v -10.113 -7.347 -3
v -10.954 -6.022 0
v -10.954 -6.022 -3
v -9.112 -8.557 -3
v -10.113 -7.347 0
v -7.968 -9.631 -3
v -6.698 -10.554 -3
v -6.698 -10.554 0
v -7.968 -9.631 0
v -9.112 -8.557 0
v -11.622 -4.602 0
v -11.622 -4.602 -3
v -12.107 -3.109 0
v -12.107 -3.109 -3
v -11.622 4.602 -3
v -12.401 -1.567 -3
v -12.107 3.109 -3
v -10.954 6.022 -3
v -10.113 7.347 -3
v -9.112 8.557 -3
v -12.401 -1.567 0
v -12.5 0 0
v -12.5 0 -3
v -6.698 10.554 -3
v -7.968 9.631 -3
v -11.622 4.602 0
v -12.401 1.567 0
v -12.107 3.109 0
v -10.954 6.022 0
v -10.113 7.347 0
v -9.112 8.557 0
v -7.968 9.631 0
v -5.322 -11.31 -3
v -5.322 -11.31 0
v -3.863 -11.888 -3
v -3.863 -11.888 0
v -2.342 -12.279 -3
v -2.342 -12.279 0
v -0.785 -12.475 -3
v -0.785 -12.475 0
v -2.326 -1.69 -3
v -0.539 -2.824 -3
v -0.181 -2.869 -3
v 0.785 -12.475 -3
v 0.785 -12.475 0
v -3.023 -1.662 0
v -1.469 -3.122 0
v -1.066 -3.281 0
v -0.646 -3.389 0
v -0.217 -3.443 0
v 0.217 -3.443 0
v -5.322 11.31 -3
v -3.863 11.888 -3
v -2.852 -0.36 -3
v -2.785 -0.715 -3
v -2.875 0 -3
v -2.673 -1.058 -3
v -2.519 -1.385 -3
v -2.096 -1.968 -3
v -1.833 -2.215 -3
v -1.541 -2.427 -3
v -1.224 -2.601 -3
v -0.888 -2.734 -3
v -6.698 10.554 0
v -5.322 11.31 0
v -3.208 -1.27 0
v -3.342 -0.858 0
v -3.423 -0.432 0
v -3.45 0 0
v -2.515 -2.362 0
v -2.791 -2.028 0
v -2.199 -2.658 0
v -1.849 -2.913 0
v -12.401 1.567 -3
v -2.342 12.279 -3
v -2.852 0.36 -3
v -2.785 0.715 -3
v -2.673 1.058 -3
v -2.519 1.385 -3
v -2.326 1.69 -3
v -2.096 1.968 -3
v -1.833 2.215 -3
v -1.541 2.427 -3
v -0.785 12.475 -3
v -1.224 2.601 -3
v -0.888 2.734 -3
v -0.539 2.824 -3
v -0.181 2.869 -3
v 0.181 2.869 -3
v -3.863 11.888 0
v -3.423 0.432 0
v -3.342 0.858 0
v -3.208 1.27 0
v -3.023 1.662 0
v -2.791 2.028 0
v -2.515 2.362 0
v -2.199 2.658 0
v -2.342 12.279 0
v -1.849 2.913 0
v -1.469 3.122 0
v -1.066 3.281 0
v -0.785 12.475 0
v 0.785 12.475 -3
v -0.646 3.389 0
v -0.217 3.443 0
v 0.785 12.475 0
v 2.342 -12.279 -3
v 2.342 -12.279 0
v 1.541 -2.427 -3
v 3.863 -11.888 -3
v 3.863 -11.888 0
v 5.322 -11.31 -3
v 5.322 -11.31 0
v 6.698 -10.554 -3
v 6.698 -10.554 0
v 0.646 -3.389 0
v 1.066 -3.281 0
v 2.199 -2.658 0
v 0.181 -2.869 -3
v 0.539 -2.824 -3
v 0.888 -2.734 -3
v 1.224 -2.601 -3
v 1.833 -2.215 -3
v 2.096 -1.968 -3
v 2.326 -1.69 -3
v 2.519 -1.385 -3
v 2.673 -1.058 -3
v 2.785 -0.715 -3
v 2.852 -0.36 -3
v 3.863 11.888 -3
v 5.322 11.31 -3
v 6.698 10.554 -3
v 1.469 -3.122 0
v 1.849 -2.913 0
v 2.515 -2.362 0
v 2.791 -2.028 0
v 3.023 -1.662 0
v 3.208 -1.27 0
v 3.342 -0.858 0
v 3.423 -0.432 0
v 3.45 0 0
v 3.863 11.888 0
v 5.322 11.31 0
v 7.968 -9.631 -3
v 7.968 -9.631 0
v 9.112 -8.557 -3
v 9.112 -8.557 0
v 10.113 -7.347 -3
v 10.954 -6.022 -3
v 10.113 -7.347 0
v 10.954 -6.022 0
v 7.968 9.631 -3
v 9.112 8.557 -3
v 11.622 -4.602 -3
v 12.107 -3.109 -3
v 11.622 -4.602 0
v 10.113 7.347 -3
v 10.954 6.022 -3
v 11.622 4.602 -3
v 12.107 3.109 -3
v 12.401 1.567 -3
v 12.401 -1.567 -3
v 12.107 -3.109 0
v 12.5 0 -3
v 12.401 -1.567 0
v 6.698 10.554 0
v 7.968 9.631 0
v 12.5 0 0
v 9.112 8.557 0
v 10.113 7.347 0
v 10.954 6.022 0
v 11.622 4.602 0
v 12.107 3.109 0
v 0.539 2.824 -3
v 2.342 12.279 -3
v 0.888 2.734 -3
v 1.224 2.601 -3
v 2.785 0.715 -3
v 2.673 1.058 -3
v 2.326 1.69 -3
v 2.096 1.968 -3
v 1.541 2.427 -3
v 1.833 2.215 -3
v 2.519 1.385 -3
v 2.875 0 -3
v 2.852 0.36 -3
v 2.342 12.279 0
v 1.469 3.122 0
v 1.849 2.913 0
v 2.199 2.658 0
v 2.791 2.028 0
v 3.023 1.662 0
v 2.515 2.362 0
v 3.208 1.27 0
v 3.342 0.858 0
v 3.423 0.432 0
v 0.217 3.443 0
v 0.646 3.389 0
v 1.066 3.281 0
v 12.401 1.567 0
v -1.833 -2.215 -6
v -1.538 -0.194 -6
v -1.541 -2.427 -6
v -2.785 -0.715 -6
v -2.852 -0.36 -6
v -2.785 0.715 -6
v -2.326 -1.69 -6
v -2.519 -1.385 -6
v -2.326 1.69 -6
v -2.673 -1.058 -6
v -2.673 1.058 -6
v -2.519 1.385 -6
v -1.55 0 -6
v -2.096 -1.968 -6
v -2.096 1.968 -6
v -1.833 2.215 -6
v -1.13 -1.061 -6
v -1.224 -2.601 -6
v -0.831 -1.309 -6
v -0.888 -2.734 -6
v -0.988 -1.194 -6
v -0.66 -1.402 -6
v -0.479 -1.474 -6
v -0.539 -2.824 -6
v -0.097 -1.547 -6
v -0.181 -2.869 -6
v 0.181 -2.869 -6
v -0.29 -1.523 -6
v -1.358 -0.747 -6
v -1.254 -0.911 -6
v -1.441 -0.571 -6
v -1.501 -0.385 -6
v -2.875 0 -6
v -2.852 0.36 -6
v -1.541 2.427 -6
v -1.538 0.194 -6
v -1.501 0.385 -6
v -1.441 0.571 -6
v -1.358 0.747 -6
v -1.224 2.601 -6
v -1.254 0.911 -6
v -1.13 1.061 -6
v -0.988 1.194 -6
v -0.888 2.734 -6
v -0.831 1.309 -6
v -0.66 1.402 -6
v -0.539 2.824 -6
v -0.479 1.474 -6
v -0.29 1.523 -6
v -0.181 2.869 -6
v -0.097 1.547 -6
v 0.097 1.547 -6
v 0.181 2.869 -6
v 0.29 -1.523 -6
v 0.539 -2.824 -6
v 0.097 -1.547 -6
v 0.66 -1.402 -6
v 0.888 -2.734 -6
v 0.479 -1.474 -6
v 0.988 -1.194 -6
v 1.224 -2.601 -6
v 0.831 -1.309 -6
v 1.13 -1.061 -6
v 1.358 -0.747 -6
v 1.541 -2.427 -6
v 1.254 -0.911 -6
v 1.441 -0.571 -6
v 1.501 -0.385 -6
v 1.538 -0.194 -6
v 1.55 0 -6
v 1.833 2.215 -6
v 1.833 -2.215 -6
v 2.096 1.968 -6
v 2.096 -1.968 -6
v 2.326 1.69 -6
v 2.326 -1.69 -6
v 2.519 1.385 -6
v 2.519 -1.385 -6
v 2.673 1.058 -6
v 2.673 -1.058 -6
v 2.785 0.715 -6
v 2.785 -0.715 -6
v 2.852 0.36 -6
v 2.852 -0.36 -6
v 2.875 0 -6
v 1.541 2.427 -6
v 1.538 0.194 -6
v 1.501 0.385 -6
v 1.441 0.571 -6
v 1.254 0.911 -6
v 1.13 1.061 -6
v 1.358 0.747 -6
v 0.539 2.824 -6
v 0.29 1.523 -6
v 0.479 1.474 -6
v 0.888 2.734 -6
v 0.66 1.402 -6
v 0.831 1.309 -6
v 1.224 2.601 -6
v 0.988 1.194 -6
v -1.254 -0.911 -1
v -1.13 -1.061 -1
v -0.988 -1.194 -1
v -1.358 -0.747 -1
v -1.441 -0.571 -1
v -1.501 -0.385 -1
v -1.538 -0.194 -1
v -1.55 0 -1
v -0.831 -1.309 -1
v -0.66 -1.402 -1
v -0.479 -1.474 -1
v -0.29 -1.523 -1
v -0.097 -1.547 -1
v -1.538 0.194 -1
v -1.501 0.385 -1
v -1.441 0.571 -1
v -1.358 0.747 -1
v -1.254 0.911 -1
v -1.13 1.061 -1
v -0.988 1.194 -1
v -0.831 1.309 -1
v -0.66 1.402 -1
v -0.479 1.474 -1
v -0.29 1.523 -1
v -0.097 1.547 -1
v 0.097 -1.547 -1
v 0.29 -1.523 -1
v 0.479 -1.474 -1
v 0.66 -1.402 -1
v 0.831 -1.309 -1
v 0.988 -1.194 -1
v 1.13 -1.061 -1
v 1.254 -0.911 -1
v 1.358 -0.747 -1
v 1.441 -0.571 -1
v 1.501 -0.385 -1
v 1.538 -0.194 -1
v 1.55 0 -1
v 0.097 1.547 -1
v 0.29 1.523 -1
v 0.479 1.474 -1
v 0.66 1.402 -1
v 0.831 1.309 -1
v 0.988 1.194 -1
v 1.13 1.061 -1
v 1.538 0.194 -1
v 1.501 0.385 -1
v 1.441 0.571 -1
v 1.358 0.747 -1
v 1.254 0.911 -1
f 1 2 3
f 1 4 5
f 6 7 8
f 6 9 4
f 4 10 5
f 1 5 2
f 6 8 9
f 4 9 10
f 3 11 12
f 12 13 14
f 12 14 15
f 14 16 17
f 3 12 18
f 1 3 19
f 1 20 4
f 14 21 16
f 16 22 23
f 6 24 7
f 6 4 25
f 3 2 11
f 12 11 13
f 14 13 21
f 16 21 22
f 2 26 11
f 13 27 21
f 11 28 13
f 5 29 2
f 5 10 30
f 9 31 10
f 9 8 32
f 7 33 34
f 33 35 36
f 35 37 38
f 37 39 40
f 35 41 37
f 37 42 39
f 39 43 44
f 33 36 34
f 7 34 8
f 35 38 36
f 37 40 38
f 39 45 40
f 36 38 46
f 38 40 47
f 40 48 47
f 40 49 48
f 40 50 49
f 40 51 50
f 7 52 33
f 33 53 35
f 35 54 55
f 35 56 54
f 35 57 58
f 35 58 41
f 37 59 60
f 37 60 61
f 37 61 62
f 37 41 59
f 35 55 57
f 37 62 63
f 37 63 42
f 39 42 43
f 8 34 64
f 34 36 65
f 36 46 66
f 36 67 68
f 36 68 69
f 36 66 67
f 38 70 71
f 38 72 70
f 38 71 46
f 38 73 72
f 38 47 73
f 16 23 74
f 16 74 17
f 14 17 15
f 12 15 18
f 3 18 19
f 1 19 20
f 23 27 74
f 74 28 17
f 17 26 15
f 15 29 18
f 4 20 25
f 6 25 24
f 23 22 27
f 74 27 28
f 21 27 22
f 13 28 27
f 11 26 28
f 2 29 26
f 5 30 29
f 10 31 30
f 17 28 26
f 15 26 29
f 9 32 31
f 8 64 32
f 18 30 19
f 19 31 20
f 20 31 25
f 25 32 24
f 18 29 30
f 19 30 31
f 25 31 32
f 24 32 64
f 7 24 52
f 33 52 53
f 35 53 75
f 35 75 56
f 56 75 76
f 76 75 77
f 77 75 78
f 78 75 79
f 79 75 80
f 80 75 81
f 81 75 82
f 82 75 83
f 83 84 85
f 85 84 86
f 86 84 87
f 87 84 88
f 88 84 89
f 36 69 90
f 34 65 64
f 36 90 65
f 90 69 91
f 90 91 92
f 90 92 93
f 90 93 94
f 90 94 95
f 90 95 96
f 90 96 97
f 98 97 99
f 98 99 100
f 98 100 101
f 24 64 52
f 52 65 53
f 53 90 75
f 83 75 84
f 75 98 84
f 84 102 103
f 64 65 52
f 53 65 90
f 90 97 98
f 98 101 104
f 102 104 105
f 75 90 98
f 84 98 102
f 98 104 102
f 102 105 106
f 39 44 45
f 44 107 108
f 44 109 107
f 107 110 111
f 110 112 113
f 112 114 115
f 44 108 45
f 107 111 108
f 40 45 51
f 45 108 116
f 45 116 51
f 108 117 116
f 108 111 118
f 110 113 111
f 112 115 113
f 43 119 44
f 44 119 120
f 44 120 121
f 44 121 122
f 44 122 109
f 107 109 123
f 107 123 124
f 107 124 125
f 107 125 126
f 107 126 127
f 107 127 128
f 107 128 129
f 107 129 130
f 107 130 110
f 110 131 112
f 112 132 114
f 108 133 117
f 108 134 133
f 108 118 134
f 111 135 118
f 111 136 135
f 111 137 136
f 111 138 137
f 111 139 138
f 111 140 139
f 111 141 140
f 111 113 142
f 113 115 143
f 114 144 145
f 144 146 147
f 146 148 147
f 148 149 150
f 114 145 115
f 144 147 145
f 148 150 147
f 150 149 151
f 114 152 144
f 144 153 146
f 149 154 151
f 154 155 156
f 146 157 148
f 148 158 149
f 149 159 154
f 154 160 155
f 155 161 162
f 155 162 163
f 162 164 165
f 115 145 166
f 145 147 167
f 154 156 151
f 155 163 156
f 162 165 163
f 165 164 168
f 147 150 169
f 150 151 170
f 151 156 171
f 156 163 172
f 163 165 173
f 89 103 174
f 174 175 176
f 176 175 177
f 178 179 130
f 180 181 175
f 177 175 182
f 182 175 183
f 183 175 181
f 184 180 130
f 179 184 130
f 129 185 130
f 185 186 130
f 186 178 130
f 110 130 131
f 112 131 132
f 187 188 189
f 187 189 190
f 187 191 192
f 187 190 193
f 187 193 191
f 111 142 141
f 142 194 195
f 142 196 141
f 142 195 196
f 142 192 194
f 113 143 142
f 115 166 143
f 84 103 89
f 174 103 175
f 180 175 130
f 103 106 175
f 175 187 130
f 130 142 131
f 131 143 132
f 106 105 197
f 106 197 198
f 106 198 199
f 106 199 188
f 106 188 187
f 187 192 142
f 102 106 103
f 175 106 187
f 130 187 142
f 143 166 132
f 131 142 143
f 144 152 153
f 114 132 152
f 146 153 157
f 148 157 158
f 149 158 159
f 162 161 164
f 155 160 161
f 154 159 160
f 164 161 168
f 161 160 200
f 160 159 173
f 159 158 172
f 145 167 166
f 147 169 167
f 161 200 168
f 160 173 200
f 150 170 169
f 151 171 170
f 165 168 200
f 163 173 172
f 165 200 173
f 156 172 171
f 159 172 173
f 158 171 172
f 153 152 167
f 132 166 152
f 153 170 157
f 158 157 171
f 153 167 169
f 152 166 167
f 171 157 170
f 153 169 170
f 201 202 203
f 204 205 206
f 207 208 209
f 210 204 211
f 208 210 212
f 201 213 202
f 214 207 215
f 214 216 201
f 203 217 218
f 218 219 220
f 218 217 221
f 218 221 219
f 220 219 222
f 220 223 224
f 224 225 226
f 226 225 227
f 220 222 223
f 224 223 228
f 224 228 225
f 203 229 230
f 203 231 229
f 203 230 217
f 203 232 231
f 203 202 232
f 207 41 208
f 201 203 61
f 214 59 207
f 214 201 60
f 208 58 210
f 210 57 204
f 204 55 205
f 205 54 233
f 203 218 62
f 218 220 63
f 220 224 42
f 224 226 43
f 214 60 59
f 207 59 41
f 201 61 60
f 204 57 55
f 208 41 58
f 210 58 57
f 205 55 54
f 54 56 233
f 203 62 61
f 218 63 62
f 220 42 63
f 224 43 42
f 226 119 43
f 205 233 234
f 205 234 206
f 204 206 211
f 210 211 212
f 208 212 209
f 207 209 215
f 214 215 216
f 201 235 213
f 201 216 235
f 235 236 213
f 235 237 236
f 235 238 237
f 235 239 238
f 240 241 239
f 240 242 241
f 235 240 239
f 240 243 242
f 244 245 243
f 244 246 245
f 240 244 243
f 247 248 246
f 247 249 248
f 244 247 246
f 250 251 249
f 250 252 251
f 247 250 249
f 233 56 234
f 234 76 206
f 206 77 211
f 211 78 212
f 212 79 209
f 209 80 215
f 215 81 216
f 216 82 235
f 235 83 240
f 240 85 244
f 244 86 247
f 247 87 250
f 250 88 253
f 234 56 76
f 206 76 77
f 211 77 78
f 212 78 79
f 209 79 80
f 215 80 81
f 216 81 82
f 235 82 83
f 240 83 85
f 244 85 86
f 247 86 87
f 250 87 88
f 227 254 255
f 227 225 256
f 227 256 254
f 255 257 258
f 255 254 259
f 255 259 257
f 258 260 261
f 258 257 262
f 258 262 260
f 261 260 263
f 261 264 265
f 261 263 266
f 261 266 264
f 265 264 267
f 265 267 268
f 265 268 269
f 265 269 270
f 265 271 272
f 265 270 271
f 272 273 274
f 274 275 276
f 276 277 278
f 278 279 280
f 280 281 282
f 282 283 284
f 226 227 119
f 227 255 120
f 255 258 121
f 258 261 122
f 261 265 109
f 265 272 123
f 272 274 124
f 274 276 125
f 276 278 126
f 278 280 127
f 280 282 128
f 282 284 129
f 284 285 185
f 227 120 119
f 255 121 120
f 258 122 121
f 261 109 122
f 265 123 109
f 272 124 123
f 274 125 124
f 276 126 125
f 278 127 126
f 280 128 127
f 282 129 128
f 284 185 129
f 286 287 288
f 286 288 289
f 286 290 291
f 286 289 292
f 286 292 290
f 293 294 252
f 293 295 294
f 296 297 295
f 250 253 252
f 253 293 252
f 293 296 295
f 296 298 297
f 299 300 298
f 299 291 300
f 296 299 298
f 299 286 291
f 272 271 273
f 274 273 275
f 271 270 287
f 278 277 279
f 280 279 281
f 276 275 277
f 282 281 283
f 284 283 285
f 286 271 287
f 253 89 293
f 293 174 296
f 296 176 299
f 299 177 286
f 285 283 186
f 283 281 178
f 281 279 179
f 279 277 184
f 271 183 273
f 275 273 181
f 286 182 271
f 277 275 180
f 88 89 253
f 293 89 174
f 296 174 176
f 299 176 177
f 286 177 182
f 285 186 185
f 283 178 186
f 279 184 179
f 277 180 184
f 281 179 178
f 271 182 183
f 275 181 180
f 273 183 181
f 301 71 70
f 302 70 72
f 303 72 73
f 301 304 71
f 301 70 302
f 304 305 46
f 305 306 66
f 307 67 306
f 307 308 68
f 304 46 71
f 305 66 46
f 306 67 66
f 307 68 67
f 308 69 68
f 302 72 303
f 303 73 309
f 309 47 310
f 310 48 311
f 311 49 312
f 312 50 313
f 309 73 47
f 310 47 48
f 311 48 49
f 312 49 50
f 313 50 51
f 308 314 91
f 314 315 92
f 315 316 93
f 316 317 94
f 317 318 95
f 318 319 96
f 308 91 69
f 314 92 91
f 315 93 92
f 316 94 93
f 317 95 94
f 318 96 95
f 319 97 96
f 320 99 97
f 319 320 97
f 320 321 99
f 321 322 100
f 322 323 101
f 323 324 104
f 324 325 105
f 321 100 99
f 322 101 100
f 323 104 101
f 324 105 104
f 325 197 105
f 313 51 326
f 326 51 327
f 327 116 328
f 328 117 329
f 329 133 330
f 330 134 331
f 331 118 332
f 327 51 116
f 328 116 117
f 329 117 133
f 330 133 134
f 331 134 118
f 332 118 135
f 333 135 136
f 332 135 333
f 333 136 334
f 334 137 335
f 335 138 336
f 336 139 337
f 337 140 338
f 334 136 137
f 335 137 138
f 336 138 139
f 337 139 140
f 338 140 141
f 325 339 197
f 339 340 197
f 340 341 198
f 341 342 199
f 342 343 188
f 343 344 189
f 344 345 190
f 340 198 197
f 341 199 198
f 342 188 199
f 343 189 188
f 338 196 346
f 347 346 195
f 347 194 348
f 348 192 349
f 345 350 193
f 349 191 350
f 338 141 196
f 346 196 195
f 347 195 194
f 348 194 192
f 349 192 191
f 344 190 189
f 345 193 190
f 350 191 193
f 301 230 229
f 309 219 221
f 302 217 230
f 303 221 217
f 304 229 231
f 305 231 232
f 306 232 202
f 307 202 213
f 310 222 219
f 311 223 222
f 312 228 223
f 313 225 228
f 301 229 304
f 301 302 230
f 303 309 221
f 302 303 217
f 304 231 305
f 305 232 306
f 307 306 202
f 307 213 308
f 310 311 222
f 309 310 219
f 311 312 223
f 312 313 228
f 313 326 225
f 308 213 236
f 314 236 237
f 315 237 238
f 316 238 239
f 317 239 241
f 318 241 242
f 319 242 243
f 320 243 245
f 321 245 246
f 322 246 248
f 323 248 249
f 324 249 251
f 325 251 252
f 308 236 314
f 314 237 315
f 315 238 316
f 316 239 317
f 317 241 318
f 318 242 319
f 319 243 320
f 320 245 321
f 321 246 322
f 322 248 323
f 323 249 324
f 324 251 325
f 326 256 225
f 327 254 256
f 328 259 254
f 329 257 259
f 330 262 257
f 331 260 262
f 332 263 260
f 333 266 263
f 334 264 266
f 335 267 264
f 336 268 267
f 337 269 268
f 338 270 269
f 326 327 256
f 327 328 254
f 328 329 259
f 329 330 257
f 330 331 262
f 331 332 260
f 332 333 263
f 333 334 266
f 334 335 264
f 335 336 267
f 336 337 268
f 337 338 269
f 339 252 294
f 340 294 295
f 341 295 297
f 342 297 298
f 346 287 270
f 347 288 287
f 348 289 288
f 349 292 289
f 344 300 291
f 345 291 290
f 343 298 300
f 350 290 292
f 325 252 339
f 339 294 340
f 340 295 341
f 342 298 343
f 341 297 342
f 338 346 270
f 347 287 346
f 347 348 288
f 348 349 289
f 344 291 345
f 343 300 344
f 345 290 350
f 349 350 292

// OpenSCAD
$fn = 50;

difference() {
	union() {
		translate(v = [0, 0, -3.0]) {
			cylinder(h = 3, r = 12.5);
		}
		#translate(v = [0, 0, -6.0]) {
			cylinder(h = 6, r = 2.875);
		}
	}
	union() {
		translate(v = [0, 0, 0]) {
			rotate(a = [0, 0, 0]) {
				difference() {
					union() {
						translate(v = [0, 0, -6.0]) {
							cylinder(h = 6, r = 1.25);
						}
						translate(v = [0, 0, -1.0]) {
							cylinder(h = 1.0, r1 = 1.55, r2 = 3.45);
						}
						translate(v = [0, 0, -6.0]) {
							cylinder(h = 6, r = 1.55);
						}
						translate(v = [0, 0, -6.0]) {
							cylinder(h = 6, r = 1.25);
						}
					}
					union();
				}
			}
		}
	}
}
